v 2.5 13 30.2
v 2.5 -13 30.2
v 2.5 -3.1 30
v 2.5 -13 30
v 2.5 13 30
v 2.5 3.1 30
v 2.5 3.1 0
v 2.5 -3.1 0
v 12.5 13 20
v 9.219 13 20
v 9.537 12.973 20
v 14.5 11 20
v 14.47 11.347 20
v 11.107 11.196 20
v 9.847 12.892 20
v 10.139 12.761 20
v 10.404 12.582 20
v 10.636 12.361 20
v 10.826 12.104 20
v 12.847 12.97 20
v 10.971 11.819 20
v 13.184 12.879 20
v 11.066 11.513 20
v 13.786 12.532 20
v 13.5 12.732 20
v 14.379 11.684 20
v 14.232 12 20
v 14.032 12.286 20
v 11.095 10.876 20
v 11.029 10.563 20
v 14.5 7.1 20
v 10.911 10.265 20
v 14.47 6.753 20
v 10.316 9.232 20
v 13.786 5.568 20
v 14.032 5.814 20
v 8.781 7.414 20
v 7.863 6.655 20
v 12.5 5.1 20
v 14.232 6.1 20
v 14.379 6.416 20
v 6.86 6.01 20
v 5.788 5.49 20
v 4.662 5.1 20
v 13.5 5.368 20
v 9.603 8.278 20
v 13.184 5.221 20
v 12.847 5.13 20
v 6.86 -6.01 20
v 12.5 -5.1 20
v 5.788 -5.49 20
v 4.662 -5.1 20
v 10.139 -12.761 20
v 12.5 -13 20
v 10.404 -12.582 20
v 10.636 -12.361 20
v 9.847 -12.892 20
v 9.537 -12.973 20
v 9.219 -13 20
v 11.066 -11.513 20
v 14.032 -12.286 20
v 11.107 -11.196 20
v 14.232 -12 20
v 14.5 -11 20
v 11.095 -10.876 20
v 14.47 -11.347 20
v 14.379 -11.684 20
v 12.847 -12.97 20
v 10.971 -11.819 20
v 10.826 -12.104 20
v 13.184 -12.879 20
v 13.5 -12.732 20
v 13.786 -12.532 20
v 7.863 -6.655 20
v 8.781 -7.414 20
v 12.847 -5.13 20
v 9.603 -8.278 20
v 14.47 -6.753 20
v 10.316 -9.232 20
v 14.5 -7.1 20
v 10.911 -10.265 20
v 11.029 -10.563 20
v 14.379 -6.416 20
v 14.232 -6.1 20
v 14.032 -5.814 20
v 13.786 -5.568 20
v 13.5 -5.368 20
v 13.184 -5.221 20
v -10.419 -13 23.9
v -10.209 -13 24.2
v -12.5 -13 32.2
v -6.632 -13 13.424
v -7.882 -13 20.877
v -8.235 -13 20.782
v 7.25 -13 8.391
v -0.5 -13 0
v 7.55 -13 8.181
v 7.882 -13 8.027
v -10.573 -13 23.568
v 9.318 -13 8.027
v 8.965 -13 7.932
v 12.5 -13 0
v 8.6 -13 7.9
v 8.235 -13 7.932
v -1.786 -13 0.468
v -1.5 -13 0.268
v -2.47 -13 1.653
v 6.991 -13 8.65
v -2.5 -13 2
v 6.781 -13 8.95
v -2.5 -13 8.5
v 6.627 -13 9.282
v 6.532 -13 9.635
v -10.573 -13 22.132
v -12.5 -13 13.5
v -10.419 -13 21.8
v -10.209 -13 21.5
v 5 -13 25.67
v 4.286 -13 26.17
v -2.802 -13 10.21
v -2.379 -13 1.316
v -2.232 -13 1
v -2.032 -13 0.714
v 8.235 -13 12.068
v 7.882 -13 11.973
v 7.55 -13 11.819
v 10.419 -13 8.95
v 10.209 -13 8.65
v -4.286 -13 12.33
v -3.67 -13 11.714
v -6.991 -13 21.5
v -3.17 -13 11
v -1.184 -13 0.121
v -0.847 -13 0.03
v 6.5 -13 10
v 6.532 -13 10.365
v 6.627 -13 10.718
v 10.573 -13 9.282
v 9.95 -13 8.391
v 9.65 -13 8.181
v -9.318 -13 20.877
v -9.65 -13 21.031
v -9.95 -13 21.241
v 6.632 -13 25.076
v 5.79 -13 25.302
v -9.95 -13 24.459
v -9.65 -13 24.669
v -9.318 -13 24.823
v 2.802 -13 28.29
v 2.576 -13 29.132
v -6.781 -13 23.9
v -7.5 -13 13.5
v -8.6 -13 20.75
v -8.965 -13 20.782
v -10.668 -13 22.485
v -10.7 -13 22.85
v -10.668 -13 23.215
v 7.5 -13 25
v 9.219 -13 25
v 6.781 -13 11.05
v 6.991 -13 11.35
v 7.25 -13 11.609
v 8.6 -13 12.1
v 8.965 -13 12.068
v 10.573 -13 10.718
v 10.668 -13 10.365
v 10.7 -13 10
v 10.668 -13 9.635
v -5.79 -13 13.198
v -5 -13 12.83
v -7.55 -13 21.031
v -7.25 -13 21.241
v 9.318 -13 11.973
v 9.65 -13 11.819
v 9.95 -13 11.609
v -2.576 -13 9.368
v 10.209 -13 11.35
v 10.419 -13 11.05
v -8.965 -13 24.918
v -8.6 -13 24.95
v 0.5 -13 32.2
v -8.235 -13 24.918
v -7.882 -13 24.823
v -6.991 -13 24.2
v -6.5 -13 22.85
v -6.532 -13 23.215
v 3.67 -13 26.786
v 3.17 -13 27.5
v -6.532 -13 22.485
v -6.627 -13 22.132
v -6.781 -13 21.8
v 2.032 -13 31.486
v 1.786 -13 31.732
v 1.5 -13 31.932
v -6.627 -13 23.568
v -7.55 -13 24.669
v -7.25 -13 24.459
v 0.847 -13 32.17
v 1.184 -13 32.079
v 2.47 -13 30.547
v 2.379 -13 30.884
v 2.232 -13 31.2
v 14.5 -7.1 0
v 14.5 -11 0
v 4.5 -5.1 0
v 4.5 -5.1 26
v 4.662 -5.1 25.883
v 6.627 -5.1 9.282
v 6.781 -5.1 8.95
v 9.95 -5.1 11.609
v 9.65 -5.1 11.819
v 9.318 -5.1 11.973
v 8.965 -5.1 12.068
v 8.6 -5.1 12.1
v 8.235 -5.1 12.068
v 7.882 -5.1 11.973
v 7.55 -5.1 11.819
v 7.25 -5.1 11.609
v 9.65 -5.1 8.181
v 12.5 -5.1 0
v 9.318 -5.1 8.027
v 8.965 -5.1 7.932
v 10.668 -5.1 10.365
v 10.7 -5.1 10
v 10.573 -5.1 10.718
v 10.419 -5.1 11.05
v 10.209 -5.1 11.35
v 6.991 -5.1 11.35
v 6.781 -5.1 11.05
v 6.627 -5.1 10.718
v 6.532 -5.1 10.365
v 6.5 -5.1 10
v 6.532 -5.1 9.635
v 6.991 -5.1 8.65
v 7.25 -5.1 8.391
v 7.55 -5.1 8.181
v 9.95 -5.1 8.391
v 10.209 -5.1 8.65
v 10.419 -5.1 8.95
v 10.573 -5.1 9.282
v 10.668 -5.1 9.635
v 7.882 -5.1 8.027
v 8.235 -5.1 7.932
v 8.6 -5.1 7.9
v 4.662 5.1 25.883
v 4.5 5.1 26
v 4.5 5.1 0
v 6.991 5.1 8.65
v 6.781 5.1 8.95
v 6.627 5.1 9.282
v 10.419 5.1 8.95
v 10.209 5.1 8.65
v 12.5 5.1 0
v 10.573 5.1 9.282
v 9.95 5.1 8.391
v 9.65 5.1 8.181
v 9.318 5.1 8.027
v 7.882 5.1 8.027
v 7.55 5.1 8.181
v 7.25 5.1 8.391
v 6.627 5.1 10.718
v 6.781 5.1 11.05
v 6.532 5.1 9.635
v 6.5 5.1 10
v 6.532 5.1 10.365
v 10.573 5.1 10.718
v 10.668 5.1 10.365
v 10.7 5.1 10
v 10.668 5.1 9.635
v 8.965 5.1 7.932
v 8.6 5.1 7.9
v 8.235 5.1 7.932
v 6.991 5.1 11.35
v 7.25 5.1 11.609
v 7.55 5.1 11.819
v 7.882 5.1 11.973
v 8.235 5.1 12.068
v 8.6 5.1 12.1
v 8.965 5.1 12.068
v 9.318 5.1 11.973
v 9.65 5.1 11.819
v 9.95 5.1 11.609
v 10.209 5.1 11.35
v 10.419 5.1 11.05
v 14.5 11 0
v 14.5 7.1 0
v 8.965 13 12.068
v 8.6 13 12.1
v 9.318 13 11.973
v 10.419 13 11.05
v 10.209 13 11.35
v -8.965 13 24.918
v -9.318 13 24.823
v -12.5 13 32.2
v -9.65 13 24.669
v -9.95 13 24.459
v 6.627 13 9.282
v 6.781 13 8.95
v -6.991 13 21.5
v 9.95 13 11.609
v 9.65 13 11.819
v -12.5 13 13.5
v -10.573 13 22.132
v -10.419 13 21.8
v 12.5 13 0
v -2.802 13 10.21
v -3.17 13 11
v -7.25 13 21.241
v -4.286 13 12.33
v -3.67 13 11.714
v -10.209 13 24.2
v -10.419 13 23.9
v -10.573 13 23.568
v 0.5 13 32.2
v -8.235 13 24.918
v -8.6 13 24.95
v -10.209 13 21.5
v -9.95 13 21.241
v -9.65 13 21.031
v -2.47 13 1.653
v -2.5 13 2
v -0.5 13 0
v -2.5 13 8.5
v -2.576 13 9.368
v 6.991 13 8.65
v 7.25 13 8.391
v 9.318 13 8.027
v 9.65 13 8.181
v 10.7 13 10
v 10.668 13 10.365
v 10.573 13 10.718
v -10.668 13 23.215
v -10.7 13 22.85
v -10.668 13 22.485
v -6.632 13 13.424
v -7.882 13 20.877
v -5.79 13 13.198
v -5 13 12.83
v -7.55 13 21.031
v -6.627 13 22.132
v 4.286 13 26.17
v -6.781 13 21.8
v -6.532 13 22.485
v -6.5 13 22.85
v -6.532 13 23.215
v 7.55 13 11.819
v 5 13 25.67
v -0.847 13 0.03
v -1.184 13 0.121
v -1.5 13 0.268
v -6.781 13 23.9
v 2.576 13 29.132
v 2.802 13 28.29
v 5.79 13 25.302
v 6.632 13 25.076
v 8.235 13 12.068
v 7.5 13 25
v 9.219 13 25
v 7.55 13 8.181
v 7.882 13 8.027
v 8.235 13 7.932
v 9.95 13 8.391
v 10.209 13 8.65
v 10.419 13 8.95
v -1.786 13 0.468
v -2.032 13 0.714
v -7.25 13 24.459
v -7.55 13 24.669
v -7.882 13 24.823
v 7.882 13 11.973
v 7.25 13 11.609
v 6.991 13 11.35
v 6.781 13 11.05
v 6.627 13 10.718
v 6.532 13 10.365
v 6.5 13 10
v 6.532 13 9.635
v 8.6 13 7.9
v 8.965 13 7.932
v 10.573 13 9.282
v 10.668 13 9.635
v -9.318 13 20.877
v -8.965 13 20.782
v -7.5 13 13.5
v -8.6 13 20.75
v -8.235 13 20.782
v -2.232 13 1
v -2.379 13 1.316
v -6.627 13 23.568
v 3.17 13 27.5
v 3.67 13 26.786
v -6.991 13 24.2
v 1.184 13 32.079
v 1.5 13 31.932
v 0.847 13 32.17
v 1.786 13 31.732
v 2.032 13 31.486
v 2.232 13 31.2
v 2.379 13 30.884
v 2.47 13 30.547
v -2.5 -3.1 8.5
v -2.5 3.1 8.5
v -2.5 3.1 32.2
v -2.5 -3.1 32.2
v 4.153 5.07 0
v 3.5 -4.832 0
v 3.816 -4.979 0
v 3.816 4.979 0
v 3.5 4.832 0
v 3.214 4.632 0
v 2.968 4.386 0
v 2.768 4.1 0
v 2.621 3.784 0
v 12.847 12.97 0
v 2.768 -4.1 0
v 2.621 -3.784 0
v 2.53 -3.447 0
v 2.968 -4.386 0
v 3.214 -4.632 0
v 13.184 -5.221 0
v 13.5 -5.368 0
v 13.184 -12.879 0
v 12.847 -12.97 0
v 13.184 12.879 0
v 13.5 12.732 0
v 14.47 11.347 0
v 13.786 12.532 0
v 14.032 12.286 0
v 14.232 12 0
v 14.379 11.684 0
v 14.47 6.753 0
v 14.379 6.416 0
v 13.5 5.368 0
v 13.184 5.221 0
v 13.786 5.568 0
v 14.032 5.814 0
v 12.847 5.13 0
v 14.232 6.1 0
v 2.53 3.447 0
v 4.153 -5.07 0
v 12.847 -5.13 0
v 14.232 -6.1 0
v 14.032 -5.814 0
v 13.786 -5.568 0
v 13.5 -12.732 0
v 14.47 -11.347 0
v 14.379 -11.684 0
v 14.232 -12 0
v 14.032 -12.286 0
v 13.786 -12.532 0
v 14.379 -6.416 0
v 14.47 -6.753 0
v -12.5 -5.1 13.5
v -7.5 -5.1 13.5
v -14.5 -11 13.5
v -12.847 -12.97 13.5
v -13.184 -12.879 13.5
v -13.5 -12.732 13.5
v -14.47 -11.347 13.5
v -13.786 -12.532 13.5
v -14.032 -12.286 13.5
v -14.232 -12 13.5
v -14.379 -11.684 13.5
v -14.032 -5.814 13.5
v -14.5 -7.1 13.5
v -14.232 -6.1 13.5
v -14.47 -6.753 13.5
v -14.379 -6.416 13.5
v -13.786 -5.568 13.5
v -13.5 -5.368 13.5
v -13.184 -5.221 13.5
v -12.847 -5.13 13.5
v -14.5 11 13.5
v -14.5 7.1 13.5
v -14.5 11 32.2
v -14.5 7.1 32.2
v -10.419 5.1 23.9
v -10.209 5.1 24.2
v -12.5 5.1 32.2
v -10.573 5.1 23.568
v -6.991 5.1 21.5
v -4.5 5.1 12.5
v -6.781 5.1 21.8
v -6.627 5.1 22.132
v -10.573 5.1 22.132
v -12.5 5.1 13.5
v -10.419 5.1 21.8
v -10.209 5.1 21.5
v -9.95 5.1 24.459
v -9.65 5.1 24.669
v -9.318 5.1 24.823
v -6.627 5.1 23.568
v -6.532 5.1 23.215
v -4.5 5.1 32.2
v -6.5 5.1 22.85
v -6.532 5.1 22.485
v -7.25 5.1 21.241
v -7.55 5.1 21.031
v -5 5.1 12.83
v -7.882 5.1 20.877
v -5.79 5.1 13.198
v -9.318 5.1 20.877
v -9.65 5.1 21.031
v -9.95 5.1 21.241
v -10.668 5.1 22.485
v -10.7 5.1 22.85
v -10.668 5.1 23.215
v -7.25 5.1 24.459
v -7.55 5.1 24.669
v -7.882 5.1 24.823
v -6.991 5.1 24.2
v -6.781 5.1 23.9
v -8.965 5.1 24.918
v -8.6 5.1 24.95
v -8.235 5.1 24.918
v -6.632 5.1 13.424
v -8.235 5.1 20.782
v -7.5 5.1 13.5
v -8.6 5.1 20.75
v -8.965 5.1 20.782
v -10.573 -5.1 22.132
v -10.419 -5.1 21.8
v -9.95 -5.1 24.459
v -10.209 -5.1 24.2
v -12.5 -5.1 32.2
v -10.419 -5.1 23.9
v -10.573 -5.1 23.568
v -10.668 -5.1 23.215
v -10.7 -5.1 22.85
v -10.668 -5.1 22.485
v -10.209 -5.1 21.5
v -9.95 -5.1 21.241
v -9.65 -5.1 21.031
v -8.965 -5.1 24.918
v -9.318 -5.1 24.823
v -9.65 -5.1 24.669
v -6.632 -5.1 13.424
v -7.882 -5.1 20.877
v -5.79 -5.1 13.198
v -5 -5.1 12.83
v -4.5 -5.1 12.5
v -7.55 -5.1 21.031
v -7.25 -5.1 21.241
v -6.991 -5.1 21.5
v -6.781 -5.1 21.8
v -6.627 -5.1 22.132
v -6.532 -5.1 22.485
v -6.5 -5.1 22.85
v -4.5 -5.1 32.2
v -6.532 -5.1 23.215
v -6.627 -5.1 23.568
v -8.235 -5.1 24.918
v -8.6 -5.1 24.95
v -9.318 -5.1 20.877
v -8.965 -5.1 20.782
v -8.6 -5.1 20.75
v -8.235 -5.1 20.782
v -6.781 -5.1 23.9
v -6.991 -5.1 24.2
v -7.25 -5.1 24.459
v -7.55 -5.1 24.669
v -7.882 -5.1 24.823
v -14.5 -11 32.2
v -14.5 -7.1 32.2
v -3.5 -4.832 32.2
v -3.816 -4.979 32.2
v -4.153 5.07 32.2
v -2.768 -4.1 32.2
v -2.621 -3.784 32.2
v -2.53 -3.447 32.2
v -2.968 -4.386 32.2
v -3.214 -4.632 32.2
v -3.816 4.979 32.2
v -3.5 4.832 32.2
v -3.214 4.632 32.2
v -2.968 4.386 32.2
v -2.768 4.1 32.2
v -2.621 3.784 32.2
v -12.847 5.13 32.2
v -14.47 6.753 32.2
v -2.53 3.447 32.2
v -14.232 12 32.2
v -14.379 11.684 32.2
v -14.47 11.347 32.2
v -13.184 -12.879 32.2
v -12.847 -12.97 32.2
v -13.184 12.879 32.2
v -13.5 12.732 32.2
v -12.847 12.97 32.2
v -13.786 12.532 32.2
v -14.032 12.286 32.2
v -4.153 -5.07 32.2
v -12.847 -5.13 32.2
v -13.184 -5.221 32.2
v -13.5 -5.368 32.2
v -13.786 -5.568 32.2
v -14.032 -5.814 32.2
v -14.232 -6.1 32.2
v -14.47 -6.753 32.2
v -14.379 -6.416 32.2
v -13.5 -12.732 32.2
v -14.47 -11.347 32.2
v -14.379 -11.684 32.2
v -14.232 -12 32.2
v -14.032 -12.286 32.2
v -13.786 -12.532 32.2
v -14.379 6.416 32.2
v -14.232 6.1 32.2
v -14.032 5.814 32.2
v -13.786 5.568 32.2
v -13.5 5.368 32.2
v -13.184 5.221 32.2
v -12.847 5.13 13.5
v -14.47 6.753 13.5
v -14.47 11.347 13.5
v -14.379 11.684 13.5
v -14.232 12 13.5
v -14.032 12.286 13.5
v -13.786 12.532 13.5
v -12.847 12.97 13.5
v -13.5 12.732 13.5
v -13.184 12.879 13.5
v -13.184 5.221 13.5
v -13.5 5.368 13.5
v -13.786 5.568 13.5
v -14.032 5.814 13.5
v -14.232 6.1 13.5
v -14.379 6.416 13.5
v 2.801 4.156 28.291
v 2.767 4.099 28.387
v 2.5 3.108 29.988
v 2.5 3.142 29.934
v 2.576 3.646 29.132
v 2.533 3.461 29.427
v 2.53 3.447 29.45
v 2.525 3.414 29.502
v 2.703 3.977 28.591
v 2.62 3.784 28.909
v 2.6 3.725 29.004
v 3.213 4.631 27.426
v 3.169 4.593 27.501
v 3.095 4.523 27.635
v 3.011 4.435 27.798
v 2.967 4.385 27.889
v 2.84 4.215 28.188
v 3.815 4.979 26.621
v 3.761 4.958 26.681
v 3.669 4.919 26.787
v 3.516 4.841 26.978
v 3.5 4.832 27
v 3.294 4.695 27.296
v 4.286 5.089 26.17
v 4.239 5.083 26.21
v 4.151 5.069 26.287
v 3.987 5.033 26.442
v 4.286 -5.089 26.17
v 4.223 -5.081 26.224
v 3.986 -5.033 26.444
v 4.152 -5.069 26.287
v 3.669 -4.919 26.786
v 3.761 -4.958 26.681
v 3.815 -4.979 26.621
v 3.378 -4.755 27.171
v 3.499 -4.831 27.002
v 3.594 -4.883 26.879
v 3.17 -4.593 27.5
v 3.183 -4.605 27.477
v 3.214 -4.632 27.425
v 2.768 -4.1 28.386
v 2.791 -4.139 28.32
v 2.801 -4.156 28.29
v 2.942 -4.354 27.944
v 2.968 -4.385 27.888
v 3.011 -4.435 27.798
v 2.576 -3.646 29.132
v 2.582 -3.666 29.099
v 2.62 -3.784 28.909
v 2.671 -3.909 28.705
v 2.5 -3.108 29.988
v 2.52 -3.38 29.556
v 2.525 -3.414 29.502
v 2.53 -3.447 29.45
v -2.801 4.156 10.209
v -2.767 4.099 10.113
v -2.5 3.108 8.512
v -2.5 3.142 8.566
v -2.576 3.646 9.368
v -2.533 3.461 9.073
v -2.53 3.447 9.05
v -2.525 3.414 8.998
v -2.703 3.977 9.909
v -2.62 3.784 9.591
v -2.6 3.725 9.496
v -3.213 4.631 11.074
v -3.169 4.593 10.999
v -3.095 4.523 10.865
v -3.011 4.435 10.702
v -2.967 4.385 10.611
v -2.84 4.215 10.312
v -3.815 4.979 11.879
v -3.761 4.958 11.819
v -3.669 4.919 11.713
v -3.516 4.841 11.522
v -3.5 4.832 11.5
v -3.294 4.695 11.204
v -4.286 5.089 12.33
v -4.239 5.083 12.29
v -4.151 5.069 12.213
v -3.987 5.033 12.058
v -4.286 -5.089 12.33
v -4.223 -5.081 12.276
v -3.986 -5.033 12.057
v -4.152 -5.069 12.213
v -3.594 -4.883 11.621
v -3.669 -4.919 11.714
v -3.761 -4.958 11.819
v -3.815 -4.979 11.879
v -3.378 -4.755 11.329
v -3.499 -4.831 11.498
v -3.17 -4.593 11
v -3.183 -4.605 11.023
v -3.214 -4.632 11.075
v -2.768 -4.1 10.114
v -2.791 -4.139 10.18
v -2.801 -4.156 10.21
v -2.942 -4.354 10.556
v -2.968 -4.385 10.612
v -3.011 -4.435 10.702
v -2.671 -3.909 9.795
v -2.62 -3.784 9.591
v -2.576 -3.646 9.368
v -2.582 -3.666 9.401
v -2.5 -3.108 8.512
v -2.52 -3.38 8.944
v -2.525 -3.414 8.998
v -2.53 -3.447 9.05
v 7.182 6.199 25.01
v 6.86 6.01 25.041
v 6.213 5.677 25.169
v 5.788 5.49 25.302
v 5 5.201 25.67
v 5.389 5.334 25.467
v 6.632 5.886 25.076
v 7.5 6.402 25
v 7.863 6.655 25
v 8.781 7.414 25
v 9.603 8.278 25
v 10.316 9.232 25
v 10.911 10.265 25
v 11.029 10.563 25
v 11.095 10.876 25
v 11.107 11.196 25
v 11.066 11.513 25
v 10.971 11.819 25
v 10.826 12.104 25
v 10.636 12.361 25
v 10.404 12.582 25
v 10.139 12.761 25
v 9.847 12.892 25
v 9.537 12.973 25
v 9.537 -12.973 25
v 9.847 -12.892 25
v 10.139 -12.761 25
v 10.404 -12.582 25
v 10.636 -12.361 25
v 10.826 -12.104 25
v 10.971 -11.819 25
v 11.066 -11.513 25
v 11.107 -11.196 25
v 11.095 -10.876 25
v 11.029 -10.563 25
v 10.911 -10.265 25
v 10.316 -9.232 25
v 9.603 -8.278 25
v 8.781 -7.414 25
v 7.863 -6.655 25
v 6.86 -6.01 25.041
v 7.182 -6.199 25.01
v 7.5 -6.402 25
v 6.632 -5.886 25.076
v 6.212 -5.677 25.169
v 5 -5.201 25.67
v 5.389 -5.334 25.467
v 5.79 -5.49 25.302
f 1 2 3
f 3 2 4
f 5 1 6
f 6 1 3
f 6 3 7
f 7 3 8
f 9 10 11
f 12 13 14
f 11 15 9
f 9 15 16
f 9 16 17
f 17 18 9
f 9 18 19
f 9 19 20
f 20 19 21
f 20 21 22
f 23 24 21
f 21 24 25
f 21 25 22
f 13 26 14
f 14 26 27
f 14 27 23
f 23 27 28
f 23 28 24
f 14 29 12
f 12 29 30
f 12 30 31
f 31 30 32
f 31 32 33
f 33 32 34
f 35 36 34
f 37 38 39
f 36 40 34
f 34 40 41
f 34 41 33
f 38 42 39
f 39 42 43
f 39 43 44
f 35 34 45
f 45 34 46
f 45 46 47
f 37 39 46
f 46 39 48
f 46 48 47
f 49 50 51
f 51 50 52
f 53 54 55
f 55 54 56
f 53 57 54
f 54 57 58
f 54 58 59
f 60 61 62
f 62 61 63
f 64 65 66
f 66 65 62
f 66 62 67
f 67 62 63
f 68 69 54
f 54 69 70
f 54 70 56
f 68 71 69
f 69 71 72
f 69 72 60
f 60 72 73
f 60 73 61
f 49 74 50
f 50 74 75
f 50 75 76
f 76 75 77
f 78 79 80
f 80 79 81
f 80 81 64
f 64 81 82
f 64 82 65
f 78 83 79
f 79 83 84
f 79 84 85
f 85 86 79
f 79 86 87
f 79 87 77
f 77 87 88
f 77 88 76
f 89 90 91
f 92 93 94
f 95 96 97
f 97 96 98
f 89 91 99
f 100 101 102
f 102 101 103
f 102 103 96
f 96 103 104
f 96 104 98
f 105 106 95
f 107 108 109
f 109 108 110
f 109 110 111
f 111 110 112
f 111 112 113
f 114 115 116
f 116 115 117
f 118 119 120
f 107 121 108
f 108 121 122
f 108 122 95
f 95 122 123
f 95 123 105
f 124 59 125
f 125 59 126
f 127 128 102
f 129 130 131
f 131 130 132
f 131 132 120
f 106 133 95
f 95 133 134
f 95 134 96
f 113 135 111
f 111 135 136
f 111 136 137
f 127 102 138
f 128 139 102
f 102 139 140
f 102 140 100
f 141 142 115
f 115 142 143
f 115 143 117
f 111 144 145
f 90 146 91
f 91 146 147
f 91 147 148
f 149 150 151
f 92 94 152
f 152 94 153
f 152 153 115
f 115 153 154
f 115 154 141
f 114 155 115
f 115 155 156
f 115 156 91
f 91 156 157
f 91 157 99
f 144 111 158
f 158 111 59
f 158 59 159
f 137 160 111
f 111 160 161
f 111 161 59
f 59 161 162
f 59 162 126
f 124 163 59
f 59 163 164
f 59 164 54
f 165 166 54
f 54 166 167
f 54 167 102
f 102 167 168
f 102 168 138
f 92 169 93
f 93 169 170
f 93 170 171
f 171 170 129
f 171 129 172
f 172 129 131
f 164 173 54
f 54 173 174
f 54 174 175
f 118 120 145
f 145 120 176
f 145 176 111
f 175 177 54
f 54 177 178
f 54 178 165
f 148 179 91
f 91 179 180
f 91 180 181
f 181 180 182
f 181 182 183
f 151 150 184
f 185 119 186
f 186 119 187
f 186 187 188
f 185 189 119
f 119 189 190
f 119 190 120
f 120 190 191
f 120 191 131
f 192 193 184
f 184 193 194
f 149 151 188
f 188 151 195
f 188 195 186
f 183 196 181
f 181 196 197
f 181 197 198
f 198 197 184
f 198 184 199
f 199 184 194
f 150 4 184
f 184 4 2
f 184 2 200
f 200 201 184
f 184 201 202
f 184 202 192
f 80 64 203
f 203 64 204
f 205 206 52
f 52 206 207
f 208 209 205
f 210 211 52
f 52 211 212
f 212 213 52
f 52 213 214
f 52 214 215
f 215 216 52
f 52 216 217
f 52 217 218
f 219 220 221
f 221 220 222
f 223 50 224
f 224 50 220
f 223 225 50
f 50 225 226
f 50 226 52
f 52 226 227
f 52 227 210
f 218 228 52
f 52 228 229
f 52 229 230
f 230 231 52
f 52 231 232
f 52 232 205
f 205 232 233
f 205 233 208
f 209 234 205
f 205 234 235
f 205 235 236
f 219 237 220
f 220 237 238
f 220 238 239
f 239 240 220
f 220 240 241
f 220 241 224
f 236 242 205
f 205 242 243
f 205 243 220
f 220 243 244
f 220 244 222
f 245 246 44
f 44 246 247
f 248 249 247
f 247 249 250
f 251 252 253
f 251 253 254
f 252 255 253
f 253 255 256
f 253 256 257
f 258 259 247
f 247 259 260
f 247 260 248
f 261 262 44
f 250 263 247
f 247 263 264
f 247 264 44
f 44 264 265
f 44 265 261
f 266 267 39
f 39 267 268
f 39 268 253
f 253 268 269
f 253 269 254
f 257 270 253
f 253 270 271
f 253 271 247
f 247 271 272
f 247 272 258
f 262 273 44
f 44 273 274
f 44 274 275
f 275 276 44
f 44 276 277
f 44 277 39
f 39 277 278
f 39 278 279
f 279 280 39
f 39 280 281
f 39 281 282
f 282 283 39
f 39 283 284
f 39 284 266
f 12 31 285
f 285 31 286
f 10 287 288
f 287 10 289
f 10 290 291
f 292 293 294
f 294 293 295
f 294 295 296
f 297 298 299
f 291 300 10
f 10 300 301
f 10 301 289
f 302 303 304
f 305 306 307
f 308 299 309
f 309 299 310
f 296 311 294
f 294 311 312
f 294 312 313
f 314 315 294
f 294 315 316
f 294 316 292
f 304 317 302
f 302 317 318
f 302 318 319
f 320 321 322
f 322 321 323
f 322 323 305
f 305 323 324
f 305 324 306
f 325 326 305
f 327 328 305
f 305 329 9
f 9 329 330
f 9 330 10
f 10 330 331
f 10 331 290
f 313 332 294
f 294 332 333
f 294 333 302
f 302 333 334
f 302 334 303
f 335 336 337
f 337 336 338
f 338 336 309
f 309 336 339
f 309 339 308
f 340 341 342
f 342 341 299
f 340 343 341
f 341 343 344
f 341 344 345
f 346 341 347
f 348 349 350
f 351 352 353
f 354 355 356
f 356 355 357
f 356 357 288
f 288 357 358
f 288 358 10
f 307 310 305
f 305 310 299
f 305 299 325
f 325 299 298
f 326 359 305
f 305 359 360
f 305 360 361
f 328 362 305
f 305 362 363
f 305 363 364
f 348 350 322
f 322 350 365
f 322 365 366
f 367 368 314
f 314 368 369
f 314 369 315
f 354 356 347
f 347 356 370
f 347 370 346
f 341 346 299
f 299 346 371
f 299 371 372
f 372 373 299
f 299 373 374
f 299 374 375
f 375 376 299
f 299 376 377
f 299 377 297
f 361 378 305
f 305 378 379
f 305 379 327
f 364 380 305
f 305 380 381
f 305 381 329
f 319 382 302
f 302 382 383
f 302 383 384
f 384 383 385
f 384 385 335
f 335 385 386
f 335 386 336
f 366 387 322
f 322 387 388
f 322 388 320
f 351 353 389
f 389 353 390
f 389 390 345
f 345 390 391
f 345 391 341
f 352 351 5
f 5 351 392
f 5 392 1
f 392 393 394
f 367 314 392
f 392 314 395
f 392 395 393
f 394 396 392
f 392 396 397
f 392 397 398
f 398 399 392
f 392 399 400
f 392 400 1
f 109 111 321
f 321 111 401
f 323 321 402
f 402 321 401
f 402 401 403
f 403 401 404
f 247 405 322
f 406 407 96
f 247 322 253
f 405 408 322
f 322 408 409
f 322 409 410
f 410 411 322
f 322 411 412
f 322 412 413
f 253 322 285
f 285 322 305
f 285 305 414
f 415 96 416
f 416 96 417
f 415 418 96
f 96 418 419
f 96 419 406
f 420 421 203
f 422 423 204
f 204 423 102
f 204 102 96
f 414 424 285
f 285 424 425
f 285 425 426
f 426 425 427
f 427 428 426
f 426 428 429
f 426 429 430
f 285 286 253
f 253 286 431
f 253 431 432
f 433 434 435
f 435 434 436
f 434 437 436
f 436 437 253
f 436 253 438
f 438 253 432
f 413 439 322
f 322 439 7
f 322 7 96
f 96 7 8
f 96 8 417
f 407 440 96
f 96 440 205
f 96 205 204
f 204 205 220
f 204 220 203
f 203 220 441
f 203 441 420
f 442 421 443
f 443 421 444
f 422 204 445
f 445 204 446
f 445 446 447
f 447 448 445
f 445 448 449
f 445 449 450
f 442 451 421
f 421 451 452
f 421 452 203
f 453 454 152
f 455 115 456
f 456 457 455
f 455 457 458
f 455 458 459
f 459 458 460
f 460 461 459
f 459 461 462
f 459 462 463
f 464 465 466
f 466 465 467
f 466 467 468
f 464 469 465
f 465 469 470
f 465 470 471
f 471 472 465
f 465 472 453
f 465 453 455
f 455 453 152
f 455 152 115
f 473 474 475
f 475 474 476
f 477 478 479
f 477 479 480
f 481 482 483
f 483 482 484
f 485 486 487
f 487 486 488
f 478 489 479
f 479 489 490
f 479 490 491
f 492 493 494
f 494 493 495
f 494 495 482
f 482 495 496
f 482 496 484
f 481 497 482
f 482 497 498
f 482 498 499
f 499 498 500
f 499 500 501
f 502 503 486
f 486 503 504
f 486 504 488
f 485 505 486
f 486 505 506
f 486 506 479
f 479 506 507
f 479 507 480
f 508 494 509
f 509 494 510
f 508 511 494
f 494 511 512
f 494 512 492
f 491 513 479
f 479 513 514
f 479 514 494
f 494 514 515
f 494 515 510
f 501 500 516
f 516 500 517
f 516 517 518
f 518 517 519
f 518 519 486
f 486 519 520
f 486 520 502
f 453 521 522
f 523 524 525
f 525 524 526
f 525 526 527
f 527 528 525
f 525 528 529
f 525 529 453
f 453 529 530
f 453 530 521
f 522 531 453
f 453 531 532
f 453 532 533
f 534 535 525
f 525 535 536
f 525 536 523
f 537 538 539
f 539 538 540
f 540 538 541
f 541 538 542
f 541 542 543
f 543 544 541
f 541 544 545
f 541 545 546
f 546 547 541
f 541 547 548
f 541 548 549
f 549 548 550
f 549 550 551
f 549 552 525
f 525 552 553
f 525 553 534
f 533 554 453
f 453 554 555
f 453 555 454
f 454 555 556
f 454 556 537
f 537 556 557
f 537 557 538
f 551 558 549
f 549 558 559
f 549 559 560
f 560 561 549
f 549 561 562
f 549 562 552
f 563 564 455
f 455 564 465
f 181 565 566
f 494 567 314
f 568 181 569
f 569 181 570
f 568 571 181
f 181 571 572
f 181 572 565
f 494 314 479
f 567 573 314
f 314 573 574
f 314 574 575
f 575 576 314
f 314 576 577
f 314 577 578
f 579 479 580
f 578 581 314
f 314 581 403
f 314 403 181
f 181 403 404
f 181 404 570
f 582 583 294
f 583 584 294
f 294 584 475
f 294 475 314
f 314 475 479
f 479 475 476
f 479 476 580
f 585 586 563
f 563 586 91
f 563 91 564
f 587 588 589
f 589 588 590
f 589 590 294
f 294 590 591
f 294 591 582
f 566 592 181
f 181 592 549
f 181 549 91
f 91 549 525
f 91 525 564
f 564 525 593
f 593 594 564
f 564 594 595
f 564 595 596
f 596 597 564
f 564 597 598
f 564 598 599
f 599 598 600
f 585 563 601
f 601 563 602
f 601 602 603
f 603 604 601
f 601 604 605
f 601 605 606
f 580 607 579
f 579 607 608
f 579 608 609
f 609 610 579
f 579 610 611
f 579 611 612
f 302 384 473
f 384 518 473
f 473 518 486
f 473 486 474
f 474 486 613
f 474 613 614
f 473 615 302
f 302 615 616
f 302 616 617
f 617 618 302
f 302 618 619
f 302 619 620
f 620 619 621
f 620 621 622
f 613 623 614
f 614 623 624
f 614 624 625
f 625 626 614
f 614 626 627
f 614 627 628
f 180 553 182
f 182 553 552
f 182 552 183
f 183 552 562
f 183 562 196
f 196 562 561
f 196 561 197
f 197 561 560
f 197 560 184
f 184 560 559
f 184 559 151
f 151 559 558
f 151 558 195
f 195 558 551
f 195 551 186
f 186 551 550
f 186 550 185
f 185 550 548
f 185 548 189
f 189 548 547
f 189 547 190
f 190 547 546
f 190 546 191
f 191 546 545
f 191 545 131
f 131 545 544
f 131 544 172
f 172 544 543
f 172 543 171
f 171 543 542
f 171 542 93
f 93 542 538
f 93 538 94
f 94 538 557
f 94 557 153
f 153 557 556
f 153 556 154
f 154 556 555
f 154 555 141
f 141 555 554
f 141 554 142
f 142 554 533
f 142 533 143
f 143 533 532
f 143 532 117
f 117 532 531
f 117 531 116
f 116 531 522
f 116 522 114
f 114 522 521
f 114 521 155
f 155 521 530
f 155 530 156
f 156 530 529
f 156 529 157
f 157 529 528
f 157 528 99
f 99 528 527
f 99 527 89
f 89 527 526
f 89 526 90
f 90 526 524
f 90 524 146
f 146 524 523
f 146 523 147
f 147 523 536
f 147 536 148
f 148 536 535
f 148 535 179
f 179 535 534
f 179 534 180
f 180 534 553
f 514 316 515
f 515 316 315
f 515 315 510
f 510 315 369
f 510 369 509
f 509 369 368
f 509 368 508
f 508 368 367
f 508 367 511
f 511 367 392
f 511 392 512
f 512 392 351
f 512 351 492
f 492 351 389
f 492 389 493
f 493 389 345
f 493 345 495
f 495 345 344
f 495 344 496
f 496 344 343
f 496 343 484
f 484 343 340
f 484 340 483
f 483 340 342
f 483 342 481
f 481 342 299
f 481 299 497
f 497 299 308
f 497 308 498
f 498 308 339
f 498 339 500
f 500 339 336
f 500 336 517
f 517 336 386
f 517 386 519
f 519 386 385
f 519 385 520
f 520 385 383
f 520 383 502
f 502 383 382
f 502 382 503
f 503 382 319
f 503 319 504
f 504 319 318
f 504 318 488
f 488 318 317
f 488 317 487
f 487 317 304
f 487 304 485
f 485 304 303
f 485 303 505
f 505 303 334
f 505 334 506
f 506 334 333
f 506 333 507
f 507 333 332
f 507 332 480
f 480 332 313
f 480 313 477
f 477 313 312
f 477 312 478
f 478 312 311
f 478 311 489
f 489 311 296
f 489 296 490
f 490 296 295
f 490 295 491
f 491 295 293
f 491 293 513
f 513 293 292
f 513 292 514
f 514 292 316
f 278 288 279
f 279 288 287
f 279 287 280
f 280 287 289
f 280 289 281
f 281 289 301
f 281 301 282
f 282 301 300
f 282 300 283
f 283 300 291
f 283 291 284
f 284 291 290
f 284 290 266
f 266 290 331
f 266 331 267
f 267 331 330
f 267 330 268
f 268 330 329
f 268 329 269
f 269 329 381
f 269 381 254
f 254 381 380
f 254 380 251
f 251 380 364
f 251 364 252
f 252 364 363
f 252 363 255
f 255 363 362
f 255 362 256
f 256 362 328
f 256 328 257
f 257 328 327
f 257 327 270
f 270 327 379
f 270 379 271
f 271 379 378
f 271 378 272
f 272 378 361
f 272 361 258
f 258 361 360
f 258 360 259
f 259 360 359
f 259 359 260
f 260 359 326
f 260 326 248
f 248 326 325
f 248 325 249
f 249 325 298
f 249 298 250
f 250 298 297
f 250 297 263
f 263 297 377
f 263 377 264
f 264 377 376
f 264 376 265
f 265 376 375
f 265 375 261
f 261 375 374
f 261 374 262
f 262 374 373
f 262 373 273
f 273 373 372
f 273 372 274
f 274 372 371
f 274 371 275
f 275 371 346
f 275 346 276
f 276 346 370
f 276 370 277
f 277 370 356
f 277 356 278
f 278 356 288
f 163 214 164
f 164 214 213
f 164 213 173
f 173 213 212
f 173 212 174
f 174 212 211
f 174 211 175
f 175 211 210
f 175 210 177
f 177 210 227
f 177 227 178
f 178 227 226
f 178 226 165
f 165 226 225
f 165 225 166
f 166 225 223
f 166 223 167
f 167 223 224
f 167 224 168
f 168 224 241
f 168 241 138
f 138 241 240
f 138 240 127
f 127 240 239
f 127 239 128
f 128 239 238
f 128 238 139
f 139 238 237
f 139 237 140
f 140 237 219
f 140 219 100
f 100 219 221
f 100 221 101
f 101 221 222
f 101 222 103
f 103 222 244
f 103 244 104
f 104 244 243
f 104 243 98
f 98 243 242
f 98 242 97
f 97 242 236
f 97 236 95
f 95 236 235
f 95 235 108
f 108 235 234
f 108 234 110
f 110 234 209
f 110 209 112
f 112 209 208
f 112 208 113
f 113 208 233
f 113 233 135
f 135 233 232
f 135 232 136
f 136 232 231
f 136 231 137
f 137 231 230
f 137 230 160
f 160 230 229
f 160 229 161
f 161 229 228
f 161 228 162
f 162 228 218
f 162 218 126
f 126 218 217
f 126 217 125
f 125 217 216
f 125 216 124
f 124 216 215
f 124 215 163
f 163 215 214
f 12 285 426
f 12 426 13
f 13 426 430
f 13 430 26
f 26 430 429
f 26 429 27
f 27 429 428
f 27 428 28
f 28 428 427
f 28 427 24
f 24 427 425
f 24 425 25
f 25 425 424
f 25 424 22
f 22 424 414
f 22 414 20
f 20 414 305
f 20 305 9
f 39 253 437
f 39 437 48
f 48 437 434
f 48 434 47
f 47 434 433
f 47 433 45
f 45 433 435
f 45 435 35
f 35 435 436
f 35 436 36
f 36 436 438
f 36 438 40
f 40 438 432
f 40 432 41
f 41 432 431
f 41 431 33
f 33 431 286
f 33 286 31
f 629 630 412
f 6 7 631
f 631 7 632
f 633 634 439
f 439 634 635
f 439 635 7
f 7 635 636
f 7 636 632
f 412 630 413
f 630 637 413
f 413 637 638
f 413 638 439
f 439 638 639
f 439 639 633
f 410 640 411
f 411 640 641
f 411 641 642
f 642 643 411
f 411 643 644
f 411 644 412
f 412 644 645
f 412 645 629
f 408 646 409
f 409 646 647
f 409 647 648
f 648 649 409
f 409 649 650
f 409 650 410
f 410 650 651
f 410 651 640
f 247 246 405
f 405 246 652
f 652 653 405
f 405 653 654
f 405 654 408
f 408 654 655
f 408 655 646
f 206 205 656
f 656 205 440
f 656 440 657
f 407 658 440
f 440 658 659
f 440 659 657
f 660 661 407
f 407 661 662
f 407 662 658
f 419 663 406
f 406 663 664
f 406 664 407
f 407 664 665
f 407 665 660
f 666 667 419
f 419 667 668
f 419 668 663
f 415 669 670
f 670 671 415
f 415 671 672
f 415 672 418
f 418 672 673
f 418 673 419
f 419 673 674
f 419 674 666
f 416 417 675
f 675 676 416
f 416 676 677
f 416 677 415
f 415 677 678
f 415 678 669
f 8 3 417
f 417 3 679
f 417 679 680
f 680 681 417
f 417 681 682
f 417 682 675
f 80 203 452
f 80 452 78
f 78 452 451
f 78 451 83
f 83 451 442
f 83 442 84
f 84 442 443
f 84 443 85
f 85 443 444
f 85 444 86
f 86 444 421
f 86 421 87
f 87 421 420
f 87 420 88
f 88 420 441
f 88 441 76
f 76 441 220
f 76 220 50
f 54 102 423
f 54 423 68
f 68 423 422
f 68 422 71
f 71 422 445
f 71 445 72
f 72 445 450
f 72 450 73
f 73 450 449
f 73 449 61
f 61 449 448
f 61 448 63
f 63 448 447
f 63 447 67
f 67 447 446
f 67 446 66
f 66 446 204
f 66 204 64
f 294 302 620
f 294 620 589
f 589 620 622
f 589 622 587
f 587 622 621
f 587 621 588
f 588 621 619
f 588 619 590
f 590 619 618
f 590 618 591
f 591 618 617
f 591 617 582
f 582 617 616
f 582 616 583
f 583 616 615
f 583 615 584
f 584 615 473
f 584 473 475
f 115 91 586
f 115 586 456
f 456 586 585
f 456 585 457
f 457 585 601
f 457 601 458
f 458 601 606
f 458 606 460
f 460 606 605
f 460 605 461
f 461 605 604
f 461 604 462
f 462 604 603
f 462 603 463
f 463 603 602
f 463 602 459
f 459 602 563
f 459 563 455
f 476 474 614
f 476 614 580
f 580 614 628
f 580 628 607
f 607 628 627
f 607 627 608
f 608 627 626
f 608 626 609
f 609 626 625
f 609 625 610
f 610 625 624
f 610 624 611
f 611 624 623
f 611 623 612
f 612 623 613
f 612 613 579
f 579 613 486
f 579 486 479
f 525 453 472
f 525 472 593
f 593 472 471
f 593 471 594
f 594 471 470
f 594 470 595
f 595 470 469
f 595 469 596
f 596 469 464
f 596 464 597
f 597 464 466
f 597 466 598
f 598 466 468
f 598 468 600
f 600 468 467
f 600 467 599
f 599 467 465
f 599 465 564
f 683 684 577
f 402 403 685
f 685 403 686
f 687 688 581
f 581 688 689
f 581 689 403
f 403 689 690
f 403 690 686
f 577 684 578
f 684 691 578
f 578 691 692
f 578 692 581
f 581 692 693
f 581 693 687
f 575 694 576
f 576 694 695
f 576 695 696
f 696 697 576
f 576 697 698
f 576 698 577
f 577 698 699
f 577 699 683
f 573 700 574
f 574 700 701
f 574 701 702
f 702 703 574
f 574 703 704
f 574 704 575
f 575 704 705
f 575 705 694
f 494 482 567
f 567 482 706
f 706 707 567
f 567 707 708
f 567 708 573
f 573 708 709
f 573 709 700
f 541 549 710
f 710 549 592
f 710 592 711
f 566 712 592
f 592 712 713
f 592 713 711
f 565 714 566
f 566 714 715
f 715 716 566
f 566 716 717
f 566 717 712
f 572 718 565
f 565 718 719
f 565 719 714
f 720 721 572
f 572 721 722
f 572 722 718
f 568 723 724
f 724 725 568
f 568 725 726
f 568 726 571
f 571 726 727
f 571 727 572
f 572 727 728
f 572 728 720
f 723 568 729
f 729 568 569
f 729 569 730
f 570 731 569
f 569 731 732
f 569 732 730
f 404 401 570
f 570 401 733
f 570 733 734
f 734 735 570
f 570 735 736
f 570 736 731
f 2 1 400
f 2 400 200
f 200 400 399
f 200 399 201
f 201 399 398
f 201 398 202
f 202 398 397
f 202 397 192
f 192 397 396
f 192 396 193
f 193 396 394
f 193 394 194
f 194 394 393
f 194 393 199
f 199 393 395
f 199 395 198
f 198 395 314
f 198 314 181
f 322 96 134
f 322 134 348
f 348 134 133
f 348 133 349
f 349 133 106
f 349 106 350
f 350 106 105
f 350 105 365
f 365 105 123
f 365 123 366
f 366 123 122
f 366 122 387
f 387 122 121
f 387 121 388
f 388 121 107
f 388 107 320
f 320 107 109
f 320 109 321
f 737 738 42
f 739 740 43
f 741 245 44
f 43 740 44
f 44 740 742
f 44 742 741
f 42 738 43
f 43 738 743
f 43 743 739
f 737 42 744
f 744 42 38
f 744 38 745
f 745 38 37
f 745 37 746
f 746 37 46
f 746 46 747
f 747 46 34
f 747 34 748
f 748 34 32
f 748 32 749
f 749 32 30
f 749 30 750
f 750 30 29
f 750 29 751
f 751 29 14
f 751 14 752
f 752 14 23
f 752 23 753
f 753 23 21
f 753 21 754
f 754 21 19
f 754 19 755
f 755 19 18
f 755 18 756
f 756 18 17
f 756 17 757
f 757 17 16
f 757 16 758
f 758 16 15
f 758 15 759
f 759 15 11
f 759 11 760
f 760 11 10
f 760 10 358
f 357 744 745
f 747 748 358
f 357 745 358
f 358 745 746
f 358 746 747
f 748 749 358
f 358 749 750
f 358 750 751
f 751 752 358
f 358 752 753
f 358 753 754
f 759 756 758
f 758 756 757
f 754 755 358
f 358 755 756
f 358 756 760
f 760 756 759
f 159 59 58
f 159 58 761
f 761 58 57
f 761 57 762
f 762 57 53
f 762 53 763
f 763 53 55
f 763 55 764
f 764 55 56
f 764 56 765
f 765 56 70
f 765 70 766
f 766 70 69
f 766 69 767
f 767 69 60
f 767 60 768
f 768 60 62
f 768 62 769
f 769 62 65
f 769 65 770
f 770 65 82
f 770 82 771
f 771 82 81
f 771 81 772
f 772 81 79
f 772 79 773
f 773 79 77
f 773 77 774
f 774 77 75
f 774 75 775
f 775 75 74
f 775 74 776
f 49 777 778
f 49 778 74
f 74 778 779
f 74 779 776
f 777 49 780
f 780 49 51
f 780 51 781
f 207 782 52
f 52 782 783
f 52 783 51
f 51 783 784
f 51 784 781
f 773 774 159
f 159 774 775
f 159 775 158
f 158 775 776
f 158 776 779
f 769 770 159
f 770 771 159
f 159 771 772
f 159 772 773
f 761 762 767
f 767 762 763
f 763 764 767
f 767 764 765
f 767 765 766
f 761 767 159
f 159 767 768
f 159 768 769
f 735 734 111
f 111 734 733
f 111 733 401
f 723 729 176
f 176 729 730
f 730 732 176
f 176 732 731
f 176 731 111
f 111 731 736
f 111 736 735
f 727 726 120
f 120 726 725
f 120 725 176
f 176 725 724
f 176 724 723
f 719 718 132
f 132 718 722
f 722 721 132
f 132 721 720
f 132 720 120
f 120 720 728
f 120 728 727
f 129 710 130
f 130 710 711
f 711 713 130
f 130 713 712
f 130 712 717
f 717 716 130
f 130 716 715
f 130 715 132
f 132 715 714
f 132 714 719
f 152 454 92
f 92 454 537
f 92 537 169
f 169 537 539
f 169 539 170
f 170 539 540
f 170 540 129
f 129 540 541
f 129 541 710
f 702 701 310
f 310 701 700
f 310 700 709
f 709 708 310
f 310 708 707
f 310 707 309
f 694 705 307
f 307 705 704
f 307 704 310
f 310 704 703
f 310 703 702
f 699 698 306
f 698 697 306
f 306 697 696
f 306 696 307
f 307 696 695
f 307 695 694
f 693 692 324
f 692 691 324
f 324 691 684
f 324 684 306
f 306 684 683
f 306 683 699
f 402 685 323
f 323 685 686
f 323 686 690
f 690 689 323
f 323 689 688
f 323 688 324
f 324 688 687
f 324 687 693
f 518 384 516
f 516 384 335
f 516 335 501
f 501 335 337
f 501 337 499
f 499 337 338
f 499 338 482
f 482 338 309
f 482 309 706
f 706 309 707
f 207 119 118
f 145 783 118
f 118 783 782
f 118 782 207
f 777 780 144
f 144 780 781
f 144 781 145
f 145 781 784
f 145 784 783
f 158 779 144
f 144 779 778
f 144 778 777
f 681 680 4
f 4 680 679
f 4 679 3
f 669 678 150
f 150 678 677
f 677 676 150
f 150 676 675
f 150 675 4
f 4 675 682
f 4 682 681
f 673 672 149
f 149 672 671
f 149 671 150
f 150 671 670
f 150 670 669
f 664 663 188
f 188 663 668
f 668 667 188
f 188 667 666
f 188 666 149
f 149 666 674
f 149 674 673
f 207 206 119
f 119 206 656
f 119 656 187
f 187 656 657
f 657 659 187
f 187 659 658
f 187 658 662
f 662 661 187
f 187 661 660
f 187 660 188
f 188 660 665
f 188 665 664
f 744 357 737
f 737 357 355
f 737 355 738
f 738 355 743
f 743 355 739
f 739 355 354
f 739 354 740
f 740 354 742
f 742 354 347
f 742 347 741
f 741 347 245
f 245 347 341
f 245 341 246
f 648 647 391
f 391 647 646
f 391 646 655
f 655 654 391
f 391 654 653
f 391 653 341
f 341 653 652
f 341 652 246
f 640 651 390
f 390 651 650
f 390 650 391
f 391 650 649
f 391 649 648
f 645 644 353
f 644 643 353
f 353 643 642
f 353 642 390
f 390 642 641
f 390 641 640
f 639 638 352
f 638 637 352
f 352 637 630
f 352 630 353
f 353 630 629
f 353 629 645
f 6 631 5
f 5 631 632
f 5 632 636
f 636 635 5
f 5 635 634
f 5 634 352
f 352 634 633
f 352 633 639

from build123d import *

# Parameters (mm, degrees)
SKETCH1_W                = 5
SKETCH1_H                = 26.000000000000004
BOSS_EXTRUDE1_DEPTH      = 20
BOSS_EXTRUDE3_DEPTH      = 12.2
BOSS_EXTRUDE3_DEPTH_BACK = 6.5
CUT_EXTRUDE2_DEPTH       = 38.6309712869599
CUT_EXTRUDE2_DEPTH_BACK  = 38.6309712869599
SKETCH4_R                = 2.100000000000001
FILLET5_R                = 2
FILLET7_R                = 2
BOSS_EXTRUDE5_START      = 5
BOSS_EXTRUDE5_DEPTH      = 5
FILLET15_R               = 5


with BuildPart() as part:
    # Sketch1 → Boss-Extrude1 (new body)
    with BuildSketch(Plane.XY):
        Rectangle(SKETCH1_W, SKETCH1_H)
        Polygon((14.5, 13), (2.5, 13), (2.5, 5.099999999999998), (14.500000000000004, 5.099999999999999), align=None)
        Polygon((14.500000000000004, -5.099999999999999), (2.500000000000007, -5.099999999999997), (2.5, -13), (14.5, -13), align=None)
    extrude(amount=BOSS_EXTRUDE1_DEPTH)

    # Sketch3 → Boss-Extrude3 (add, two sides: drawn at the far end of the back side and taken through both)
    with BuildSketch(Plane.XY.offset(20).offset(-BOSS_EXTRUDE3_DEPTH_BACK)):
        Polygon((2.5, 13), (-14.5, 13), (-14.500000000000004, 5.099999999999999), (-2.5, 5.099999999999998), (-2.5, -5.099999999999998), (-14.500000000000004, -5.099999999999999), (-14.5, -13), (2.5, -13), align=None)
    extrude(amount=BOSS_EXTRUDE3_DEPTH + BOSS_EXTRUDE3_DEPTH_BACK)

    # Sketch4 → Cut-Extrude2 (cut, two sides: drawn at the far end of the back side and taken through both)
    with BuildSketch(Plane(origin=(0, 0, 0), x_dir=(1, 0, 0), z_dir=(0, 1, 0)).offset(-CUT_EXTRUDE2_DEPTH_BACK)):
        with Locations(Location((8.6, -10, 0), (0, 0, 270))):
            Circle(SKETCH4_R)
        with Locations(Location((-8.6, -22.85, 0), (0, 0, 270))):
            Circle(SKETCH4_R)
    extrude(amount=CUT_EXTRUDE2_DEPTH + CUT_EXTRUDE2_DEPTH_BACK, mode=Mode.SUBTRACT)

    # Fillet5
    fillet5_edges = [part.edges().sort_by_distance(p)[0] for p in [
        (14.5, 13, 10),
        (14.500000000000004, 5.099999999999999, 10),
        (2.5000000000000036, 5.099999999999998, 10),
        (2.5000000000000036, -5.099999999999997, 10),
        (14.500000000000004, -5.099999999999999, 10),
        (14.5, -13, 10),
        (-2.5, 5.099999999999998, 22.85),
        (-14.5, -13, 22.85),
        (-14.5, 13, 22.85),
        (-14.500000000000004, 5.099999999999999, 22.85),
        (-2.5, -5.099999999999998, 22.85),
        (-14.500000000000004, -5.099999999999999, 22.85),
    ]]
    fillet(fillet5_edges, radius=FILLET5_R)

    # Fillet7
    fillet7_edges = [part.edges().sort_by_distance(p)[0] for p in [
        (-2.5, 0, 0),
        (2.5, 0, 32.2),
    ]]
    fillet(fillet7_edges, radius=FILLET7_R)

    # Sketch8 → Boss-Extrude5 (add)
    with BuildSketch(Plane.XY.offset(20).offset(BOSS_EXTRUDE5_START)):
        with BuildLine():
            Line((9.21850909129393, 13), (2.5, 13))
            Line((2.5, 13), (2.5, 3.099999999999998))
            ThreePointArc((2.5, 3.099999999999998), (3.085786437626906, 4.514213562373092), (4.500000000000001, 5.099999999999998))
            Line((4.500000000000001, 5.099999999999998), (4.662191244433229, 5.099999999999998))
            ThreePointArc((4.662191244433234, 5.099999999999962), (8.333268844866092, 7.021076435787774), (10.910532200315354, 10.265311171006154))
            ThreePointArc((10.910532200315352, 10.265311171006154), (10.826416519668328, 12.104060379927068), (9.21850909129393, 13))
        make_face()
        with BuildLine():
            ThreePointArc((4.500000000000001, -5.099999999999998), (3.085786437626905, -4.514213562373093), (2.5, -3.0999999999999974))
            Line((2.5, -3.099999999999998), (2.5, -13))
            Line((2.5, -13), (9.218509091293962, -13))
            ThreePointArc((9.218509091293962, -12.999999999999998), (10.8264165196684, -12.10406037992704), (10.910532200315423, -10.265311171006077))
            ThreePointArc((10.910532200315425, -10.265311171006077), (8.33326884486619, -7.021076435787755), (4.662191244433393, -5.099999999999964))
            Line((4.662191244433386, -5.099999999999998), (4.500000000000002, -5.099999999999998))
        make_face()
    extrude(amount=-BOSS_EXTRUDE5_DEPTH)

    # Fillet15
    fillet15_edges = [part.edges().sort_by_distance(p)[0] for p in [
        (-2.5, -8.049999999999999, 13.5),
        (-2.5, 8.049999999999999, 13.5),
        (2.5, -8.049999999999999, 25),
        (2.5, 8.049999999999999, 25),
    ]]
    fillet(fillet15_edges, radius=FILLET15_R)


solid = part.part
